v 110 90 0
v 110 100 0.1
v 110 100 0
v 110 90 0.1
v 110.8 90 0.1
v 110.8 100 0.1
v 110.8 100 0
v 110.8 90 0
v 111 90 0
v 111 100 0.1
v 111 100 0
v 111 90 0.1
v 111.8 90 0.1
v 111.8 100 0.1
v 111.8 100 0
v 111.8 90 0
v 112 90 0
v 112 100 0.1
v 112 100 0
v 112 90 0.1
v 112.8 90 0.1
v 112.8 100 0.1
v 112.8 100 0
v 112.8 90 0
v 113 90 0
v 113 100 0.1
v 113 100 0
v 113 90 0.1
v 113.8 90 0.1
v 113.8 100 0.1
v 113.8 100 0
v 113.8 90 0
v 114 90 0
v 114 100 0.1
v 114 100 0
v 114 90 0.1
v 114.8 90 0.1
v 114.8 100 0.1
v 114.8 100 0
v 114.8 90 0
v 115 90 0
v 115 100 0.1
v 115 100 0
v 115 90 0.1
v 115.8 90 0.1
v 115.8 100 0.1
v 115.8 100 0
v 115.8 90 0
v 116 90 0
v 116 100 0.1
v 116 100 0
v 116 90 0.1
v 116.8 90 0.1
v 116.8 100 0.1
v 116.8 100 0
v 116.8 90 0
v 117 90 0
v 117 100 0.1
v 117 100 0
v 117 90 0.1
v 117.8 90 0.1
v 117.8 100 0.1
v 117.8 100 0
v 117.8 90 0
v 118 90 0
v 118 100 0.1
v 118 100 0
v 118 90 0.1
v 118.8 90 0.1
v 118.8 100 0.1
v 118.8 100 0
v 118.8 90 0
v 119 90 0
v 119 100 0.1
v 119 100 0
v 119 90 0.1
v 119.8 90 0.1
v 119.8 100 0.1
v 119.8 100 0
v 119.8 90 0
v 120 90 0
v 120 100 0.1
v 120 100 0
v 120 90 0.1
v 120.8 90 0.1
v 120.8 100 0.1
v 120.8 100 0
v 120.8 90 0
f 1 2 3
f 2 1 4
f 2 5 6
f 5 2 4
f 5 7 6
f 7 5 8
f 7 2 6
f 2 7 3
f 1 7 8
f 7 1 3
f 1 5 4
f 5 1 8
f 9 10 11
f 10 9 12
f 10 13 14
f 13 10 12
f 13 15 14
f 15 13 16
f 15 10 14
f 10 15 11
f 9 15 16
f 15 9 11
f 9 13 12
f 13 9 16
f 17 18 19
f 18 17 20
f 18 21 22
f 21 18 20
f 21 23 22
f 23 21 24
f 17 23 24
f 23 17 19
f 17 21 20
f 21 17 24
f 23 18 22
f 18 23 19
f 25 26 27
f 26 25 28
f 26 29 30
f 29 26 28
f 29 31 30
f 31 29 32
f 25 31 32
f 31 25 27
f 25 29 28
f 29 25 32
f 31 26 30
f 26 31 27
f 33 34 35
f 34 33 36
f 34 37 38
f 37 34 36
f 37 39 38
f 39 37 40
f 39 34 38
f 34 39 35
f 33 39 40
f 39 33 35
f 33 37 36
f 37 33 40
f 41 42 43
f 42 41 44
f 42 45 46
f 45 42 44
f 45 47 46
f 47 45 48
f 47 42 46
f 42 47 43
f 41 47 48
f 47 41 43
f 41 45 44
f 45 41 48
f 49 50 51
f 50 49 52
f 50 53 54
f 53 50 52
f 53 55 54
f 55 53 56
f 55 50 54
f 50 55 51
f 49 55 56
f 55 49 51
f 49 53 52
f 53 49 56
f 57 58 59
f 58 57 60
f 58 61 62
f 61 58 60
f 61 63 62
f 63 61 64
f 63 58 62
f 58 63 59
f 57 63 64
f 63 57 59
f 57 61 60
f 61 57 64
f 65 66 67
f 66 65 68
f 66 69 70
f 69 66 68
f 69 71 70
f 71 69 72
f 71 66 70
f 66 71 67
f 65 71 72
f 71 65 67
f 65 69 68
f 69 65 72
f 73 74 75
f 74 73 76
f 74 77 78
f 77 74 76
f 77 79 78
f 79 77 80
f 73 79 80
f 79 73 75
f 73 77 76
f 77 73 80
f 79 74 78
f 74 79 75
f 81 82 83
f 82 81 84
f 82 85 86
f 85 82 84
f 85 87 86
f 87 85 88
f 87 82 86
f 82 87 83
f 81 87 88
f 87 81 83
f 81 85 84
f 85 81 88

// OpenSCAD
translate([10+100,10+80,0])
        for (i = [0 : 10]){
            translate([i,0,0])
                cube(size = [0.8,10,0.1]);
    }
